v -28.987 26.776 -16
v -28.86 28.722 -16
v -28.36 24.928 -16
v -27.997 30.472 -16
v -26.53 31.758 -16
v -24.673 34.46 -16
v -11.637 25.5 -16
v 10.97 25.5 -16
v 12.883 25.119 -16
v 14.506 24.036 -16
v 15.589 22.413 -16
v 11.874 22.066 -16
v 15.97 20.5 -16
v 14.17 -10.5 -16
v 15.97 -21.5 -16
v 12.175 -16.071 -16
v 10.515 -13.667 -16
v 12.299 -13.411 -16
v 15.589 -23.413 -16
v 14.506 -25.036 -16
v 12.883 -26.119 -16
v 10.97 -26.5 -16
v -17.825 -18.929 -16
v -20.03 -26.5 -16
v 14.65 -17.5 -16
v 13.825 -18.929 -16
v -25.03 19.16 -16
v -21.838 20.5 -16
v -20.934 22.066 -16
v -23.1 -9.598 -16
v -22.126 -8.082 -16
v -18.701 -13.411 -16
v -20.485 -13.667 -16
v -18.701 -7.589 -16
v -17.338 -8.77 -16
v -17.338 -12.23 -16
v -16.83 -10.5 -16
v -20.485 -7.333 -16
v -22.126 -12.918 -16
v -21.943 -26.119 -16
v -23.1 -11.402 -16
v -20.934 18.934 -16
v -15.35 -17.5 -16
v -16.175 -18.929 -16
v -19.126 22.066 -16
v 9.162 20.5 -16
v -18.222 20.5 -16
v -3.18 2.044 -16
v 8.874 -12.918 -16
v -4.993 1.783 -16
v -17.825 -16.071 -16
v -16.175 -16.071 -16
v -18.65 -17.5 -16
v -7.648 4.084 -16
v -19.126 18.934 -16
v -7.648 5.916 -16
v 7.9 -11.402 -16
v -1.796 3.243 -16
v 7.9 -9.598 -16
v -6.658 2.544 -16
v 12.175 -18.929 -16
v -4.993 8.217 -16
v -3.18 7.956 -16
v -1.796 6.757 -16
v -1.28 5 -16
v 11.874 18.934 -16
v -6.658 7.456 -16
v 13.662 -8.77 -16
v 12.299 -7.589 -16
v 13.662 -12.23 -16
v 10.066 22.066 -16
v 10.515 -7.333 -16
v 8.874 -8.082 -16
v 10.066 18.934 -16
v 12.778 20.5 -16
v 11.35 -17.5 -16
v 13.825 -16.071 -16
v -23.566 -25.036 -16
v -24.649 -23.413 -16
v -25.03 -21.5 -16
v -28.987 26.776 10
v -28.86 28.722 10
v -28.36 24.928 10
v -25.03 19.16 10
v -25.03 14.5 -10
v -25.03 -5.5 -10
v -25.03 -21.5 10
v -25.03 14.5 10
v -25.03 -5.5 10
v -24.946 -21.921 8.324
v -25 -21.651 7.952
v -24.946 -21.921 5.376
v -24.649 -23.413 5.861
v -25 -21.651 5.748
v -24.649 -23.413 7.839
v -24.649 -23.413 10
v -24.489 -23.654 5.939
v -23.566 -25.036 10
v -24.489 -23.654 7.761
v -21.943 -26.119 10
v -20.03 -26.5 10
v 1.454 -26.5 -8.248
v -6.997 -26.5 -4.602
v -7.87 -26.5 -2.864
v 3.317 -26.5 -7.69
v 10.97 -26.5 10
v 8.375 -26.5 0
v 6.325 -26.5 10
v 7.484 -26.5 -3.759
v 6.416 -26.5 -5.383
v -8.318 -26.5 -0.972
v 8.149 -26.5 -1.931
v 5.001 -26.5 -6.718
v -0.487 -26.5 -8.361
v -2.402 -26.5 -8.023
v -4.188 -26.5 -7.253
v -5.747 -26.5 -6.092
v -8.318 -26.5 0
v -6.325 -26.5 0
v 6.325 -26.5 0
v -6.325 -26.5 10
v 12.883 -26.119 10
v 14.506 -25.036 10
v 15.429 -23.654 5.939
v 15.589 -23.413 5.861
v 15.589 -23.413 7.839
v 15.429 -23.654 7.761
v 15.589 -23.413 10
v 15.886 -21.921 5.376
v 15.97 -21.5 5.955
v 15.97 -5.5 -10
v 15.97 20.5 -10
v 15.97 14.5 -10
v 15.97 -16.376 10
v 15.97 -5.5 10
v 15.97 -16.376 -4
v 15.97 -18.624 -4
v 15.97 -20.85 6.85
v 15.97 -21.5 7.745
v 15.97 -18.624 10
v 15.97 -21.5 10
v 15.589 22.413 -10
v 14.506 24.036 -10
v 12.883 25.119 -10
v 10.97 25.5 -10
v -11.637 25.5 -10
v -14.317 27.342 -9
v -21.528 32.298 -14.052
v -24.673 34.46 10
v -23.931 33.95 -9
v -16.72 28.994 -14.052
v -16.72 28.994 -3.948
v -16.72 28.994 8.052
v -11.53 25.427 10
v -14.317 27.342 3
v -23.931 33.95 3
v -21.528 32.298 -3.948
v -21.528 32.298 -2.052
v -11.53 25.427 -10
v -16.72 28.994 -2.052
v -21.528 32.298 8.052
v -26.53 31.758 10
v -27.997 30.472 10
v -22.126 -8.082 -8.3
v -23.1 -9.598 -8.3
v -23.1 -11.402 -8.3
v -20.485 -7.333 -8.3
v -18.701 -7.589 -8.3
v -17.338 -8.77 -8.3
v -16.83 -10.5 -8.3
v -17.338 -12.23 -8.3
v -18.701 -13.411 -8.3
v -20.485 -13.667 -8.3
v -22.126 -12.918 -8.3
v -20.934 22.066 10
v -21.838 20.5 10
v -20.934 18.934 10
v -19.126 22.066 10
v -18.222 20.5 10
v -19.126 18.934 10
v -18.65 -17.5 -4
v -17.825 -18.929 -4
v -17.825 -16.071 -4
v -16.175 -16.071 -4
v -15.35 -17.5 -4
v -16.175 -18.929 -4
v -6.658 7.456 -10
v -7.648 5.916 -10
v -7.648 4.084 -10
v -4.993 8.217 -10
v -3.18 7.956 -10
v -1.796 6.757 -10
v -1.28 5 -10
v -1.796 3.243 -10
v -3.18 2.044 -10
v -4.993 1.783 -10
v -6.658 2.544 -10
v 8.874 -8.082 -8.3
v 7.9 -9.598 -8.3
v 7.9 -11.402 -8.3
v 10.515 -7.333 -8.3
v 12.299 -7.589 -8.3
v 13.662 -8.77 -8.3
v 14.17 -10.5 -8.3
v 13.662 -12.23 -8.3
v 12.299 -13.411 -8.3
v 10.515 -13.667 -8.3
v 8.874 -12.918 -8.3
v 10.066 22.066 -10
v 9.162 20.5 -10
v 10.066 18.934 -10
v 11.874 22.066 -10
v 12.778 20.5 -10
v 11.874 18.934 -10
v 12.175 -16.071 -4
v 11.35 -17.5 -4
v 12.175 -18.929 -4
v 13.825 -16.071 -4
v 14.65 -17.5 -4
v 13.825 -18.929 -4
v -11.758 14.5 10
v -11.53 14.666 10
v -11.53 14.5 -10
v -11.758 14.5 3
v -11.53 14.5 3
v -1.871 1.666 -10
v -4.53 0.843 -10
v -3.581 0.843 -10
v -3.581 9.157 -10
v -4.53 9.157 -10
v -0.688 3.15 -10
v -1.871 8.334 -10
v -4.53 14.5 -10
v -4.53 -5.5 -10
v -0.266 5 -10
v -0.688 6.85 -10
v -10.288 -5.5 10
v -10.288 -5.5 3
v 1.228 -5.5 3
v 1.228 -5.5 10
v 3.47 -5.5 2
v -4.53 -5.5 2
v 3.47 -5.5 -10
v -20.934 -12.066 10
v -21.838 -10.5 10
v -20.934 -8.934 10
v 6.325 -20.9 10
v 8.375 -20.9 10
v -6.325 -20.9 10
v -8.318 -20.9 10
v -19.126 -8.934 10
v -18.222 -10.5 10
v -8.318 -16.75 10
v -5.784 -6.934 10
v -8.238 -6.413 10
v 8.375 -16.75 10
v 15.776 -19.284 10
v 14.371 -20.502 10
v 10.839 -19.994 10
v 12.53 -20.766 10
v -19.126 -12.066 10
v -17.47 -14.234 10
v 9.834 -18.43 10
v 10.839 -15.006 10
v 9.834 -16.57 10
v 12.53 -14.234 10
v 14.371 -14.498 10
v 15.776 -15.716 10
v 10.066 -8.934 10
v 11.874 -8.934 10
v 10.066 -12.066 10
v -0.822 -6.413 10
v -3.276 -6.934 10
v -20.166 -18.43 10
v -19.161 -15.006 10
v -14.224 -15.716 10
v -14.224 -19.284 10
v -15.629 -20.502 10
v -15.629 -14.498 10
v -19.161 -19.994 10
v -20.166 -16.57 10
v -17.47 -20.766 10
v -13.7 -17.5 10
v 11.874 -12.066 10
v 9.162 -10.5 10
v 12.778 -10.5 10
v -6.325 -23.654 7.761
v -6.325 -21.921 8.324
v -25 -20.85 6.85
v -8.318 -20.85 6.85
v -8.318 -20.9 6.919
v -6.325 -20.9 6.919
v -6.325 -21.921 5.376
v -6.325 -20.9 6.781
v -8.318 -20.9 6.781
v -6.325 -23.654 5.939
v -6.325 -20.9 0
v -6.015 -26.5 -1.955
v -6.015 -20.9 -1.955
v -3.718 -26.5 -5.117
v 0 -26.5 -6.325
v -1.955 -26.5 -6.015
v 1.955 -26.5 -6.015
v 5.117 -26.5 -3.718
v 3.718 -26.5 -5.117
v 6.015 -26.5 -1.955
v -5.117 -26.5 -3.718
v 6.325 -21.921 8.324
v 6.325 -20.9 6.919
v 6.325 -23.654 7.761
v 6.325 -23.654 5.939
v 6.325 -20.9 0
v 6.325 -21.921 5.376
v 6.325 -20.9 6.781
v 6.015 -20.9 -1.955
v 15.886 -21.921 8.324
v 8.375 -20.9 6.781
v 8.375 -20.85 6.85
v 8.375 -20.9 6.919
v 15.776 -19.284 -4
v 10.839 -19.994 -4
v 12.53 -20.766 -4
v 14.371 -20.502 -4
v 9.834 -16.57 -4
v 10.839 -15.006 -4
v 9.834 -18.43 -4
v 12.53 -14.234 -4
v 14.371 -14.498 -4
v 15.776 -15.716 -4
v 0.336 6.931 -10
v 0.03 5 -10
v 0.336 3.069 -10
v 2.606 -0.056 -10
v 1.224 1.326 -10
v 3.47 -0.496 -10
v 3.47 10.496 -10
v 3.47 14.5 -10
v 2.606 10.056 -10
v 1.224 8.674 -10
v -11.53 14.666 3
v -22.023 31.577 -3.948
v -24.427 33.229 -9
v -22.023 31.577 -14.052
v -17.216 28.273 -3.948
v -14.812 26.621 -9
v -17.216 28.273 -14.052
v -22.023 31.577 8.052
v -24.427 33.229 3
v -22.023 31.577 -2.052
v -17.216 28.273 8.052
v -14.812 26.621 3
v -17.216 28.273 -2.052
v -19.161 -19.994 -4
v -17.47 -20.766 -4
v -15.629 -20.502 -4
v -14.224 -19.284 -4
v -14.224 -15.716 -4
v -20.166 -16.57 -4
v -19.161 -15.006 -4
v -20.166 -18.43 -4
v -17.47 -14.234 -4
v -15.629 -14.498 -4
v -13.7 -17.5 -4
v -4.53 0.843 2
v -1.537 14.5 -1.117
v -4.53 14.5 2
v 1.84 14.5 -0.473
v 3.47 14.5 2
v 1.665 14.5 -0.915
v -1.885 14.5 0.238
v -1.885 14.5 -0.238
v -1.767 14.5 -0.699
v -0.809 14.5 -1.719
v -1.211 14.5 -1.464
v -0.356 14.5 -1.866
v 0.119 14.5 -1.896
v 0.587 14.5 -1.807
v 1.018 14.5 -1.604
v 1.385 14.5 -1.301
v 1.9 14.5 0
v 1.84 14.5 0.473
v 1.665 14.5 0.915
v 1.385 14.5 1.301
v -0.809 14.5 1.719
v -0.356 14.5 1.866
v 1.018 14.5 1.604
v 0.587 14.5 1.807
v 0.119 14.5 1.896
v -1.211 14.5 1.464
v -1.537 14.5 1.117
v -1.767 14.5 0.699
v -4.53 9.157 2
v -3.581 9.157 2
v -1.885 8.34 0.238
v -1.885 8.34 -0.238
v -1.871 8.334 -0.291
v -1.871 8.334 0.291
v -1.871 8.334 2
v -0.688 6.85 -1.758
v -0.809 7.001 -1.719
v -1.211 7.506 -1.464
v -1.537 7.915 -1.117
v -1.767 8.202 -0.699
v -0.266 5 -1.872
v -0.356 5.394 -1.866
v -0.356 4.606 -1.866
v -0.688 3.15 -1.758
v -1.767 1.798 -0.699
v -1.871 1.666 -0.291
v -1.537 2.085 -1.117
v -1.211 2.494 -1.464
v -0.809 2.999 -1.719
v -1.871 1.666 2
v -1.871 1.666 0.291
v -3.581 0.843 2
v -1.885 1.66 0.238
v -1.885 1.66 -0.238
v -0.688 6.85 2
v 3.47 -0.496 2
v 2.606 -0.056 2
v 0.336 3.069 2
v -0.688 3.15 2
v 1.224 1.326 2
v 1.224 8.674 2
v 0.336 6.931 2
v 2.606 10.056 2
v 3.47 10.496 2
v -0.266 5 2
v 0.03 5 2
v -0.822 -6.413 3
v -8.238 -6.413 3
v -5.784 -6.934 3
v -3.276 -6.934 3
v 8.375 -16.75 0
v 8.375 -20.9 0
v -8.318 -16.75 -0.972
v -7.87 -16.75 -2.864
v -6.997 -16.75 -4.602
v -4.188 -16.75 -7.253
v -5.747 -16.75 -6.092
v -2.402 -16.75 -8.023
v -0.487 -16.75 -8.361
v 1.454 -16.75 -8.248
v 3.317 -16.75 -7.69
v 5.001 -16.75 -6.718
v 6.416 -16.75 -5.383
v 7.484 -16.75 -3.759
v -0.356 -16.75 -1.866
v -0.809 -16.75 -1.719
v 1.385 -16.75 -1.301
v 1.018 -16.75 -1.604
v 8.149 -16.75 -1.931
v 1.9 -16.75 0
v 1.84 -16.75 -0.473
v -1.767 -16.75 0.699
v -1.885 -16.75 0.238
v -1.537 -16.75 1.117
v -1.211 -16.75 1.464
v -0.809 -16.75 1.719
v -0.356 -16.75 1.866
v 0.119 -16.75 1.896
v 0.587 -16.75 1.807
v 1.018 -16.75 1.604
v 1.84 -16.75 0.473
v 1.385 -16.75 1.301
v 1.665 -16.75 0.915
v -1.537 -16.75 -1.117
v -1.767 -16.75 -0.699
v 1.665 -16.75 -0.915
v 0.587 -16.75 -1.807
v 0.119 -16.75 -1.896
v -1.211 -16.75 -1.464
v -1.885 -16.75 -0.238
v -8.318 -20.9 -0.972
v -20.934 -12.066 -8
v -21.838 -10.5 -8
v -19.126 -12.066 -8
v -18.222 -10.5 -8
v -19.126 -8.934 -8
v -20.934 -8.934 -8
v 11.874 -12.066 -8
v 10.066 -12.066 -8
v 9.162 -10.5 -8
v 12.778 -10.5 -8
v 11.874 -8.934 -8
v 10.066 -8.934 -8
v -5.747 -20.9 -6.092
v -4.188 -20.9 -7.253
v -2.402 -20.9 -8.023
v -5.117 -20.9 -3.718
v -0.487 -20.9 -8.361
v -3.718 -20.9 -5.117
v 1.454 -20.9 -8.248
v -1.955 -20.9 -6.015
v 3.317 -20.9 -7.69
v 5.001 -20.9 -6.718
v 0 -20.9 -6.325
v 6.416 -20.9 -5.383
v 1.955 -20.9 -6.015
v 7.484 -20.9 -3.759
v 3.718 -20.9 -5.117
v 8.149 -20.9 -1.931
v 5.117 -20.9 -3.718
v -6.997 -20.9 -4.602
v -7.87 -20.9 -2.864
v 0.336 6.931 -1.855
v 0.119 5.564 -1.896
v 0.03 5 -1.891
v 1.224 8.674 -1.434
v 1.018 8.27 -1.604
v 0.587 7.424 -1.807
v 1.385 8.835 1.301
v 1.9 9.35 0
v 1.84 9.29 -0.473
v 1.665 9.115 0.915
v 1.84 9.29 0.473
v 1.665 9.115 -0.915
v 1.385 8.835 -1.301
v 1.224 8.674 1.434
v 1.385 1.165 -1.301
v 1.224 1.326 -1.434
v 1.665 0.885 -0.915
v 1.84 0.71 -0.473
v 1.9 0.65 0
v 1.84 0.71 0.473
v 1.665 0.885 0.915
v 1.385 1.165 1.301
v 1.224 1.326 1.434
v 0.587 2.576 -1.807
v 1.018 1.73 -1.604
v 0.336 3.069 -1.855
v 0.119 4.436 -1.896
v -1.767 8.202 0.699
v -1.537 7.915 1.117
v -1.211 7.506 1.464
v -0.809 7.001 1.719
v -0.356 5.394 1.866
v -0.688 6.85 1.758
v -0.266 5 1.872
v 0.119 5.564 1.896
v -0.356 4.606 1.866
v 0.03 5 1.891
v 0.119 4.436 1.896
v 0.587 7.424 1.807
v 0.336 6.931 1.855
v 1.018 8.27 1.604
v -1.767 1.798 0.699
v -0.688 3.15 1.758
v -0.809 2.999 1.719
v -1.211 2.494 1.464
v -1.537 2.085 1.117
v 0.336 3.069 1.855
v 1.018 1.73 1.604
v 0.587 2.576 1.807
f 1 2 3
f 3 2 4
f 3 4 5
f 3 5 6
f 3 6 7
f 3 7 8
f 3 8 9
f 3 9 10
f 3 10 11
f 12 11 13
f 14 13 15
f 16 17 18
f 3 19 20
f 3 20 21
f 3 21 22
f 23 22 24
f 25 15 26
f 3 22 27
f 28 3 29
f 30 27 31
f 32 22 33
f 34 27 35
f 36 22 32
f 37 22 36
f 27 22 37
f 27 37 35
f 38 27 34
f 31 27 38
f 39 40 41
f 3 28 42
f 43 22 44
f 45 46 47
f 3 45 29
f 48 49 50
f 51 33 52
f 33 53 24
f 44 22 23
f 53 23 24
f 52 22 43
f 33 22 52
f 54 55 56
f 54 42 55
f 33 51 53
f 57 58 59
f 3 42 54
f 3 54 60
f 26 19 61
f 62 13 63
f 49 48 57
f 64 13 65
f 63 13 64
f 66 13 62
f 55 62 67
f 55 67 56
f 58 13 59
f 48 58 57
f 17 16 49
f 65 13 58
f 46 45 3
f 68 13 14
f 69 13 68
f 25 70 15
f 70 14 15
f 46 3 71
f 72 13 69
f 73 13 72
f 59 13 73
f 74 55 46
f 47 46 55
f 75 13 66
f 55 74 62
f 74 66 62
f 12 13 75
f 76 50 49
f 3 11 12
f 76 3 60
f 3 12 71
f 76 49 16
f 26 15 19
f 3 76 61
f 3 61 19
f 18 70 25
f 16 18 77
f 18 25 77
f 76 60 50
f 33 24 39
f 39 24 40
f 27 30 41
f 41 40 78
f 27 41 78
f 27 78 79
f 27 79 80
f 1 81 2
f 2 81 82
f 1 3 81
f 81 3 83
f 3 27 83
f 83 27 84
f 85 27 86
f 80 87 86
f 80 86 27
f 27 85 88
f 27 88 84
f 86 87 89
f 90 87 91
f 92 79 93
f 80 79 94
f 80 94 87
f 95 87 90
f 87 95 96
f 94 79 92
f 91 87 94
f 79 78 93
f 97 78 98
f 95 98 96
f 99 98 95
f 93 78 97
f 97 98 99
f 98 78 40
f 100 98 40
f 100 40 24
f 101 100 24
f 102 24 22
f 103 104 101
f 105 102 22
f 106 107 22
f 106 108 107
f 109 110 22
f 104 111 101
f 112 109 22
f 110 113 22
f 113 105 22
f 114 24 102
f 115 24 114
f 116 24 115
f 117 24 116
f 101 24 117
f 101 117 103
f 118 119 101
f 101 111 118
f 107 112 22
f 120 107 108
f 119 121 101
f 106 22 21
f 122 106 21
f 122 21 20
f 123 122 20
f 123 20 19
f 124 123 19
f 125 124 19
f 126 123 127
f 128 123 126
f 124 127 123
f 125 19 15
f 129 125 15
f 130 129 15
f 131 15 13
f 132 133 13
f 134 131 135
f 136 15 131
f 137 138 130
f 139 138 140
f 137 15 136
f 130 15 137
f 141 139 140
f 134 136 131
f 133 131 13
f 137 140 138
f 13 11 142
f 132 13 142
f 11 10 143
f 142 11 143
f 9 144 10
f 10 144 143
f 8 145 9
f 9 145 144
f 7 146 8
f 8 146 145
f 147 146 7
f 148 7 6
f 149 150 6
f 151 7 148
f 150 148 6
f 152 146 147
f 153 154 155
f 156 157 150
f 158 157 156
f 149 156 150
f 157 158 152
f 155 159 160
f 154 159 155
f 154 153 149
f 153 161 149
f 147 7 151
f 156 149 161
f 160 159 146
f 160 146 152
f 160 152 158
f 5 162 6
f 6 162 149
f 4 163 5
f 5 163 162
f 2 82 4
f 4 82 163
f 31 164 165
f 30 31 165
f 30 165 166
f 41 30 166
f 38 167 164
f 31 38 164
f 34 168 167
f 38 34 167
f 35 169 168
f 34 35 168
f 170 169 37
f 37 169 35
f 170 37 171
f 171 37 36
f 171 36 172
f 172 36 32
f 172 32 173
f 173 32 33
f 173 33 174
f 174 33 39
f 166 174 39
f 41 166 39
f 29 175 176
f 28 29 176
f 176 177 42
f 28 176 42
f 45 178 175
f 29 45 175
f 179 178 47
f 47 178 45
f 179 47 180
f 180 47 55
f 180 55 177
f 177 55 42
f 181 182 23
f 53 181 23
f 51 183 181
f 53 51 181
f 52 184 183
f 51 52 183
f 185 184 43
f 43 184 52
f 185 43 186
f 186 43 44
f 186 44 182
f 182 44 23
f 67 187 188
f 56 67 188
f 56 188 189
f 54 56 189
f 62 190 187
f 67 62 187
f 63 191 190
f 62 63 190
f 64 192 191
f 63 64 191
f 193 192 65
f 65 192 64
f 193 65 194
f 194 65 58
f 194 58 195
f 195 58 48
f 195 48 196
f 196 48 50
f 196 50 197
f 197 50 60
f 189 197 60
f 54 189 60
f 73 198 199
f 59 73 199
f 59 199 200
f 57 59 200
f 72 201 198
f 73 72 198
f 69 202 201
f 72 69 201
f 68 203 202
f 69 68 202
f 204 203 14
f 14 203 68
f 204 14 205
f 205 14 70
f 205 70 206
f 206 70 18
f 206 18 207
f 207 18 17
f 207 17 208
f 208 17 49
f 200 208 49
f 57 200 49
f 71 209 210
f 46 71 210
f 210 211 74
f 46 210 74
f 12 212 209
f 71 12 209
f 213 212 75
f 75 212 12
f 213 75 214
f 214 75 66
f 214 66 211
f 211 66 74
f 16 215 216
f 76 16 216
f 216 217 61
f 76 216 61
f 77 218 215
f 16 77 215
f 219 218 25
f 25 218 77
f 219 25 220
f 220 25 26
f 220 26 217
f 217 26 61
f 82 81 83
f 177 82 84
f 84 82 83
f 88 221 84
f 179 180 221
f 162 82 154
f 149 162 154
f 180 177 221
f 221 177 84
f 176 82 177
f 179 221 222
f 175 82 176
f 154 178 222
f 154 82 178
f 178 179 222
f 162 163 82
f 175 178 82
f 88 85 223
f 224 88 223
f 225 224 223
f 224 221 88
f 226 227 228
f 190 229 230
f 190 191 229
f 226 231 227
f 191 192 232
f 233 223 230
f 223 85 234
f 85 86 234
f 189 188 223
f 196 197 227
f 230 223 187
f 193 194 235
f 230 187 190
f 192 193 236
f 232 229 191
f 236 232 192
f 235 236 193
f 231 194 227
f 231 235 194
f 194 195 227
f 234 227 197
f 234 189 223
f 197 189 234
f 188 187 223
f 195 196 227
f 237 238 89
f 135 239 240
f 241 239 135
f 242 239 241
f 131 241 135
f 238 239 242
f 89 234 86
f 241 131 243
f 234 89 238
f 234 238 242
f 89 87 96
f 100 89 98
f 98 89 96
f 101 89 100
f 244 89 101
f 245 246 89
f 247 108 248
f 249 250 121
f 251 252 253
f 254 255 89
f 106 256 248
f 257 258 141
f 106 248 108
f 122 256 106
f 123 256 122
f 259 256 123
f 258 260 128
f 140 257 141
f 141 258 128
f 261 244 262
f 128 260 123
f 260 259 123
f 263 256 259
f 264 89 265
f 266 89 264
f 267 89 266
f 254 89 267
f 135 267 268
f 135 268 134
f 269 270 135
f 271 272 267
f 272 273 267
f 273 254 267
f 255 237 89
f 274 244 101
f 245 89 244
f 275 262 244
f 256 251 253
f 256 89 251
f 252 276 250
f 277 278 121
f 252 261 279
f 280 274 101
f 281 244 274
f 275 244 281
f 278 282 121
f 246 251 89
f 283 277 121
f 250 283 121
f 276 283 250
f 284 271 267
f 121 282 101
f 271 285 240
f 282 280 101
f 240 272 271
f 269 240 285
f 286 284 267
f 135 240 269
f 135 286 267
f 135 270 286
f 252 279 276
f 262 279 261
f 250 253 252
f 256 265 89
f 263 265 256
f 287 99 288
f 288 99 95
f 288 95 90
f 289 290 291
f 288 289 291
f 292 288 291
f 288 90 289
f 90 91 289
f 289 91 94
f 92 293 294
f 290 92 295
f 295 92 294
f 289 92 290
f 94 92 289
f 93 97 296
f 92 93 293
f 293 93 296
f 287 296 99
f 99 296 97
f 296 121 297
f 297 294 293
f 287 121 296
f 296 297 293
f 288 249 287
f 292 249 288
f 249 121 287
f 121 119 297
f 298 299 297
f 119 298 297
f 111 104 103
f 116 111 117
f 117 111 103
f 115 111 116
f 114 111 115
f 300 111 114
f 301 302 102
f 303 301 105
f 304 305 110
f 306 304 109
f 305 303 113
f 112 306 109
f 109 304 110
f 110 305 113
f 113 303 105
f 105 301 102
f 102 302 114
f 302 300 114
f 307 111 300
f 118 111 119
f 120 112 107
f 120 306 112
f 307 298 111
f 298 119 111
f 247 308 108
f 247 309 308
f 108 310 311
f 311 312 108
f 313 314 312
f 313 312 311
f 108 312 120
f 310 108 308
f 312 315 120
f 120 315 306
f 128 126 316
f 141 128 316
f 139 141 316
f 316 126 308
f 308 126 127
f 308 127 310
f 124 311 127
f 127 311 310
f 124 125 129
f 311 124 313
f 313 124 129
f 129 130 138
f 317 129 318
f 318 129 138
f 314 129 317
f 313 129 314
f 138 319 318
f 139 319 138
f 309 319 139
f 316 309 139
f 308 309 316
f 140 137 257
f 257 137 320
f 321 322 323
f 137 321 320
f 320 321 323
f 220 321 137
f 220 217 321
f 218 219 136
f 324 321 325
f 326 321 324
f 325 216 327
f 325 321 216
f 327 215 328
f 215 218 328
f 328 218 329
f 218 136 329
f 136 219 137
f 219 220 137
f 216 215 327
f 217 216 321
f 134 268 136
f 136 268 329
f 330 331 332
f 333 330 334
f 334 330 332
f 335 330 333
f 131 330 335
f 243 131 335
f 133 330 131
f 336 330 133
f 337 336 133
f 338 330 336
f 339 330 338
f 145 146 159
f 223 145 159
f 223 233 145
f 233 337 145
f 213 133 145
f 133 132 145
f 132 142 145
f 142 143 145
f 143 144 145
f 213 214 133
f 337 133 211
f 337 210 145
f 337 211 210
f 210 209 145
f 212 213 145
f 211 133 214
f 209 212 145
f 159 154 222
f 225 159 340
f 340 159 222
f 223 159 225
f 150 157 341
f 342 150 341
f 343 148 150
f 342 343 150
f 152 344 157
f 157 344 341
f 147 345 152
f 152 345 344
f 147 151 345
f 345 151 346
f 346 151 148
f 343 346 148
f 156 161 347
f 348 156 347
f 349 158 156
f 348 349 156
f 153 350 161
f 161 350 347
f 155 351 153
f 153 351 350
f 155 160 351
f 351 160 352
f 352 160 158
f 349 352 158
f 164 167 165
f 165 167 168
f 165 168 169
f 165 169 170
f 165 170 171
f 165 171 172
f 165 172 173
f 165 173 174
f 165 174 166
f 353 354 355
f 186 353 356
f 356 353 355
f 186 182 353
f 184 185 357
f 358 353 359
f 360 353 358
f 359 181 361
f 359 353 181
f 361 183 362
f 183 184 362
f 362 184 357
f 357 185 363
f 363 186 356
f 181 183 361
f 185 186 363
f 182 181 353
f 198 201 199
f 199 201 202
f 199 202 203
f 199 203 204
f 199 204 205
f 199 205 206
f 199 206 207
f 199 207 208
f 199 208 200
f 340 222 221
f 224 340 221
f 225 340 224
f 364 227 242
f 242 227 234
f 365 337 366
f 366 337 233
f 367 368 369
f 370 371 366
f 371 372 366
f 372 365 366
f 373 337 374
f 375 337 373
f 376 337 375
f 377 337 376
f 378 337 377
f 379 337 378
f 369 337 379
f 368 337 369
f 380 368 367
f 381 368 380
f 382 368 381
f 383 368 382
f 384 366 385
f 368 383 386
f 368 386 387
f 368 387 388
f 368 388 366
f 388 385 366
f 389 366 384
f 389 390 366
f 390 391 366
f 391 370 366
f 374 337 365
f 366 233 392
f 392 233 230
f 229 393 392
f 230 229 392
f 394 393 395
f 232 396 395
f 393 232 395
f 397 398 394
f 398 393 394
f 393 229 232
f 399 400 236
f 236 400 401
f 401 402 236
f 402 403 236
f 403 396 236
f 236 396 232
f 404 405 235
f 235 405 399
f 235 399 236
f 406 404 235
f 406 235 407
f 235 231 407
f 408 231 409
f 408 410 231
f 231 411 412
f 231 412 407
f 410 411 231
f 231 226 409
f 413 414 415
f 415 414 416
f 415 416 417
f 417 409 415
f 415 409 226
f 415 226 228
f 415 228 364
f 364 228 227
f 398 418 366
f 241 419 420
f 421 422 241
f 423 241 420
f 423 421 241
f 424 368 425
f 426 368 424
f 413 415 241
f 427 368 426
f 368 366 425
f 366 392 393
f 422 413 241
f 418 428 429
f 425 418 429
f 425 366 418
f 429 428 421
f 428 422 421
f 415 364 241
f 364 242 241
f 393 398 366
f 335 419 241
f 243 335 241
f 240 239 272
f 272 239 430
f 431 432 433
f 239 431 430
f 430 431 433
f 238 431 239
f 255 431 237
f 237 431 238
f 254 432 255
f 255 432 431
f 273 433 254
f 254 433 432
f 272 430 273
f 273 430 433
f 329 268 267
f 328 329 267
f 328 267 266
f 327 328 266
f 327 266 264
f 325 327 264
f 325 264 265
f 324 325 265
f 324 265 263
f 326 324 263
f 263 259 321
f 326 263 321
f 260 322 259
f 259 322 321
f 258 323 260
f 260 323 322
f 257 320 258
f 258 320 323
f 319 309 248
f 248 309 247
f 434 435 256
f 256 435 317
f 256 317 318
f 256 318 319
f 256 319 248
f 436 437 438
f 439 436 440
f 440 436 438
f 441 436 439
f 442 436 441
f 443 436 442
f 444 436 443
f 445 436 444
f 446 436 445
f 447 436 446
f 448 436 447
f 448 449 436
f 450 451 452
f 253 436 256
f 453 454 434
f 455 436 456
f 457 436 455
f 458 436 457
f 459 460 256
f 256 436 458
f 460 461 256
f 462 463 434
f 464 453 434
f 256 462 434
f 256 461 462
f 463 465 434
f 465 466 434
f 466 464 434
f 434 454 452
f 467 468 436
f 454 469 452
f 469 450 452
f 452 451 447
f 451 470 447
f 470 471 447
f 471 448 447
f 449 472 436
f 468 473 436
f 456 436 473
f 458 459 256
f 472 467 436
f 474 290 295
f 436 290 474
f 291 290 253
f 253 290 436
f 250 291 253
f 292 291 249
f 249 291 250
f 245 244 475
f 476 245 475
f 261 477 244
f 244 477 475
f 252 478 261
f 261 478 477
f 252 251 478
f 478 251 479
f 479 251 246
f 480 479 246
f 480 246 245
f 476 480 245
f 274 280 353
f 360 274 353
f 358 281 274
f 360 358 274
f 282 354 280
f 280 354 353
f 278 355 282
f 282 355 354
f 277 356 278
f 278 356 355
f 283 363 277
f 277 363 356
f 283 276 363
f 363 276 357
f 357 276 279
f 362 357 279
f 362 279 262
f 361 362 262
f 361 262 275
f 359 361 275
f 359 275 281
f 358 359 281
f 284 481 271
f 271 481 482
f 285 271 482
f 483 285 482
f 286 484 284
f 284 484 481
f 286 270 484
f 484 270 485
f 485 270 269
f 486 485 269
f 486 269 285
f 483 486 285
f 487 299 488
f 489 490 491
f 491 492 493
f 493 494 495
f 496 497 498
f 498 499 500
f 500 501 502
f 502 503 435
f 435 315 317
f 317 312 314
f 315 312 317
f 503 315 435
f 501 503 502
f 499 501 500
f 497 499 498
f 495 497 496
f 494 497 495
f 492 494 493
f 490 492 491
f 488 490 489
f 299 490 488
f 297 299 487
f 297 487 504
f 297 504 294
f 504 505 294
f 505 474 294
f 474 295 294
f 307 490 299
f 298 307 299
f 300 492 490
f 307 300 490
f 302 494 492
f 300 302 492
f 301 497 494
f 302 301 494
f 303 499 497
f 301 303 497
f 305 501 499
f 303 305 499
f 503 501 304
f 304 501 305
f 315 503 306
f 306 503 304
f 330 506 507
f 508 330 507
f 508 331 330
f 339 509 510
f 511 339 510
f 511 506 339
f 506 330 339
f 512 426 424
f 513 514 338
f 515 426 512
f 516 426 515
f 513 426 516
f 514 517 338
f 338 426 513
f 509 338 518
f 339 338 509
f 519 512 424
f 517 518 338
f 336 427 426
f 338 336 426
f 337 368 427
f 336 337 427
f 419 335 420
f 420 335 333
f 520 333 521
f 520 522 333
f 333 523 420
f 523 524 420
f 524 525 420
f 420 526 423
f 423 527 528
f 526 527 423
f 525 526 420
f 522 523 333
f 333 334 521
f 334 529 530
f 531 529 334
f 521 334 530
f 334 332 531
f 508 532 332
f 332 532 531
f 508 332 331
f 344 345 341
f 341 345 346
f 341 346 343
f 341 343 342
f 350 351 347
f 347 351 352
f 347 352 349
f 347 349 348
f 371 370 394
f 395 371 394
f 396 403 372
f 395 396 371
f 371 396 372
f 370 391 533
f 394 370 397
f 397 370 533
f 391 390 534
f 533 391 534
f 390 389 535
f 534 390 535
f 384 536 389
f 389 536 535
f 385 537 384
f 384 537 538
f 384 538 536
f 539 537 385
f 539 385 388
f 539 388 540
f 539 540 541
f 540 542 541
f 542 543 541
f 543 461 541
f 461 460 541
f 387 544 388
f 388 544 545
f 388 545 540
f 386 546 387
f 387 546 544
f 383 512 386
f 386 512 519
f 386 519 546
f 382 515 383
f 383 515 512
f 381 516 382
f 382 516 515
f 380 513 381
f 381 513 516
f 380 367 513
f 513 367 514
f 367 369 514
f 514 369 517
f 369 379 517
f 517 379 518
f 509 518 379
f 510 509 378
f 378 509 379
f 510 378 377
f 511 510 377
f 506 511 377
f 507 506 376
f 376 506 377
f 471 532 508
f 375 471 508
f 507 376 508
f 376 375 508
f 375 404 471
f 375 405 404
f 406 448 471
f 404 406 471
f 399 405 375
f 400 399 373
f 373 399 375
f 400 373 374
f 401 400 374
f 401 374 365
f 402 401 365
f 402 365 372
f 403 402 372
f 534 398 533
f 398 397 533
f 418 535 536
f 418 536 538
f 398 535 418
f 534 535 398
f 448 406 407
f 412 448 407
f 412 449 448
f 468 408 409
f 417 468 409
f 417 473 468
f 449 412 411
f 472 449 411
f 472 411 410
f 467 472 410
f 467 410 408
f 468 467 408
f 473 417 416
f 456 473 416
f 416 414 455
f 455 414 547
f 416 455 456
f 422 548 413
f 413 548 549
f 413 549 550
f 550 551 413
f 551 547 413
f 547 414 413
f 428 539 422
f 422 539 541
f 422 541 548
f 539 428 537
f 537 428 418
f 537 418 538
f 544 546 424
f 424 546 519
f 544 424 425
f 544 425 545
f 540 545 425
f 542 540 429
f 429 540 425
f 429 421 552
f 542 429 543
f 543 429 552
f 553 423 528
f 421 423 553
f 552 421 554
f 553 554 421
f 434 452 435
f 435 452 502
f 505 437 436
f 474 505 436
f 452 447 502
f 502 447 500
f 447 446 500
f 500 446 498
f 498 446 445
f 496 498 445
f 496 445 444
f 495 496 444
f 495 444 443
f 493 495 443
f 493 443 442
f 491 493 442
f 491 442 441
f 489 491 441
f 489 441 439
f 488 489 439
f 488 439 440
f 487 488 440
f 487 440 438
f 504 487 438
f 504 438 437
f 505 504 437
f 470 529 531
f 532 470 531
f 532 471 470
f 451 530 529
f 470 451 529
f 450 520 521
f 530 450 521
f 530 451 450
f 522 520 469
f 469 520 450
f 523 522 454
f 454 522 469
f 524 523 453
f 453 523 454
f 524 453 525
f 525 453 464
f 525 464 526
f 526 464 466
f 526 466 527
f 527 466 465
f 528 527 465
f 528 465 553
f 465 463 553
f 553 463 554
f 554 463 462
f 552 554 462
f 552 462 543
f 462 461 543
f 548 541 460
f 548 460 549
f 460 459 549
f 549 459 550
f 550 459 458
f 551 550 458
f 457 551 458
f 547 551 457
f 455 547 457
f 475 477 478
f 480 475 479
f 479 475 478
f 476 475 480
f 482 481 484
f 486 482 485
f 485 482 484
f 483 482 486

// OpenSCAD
/**
 * DViejosCompactExtruder
 * 
 * created by Diego Viejo
 * 
 */


filament_d = 3;
spring_d = 10;

mainHeight = 14;
baseHeight = 6; 
offset = 3;

b623zzRad = 5;
b624zzRad = 6.5;
b623zzHeight = 4;
b624zzHeight = 5;

bearingRad = b623zzRad;
bearingHeight = b623zzHeight;

trackerDiam1 = 10.56;
trackerDiam2 = 6.56;
trackerDiam = trackerDiam2;
AjusteNozzle = 1.25;
correction = (trackerDiam1 - trackerDiam) / 2;


ptfeTubeRad = 3.2;
simpleTubeRad = 1.9;
tubeRad = simpleTubeRad;

carriagePos = -17.5;


//auxiliary
module tracker()
{
    //%translate([0, 0, 8.25]) 
    difference() {
	linear_extrude(height = 11, convexity = 5) difference() {
		circle(trackerDiam/2);
		circle(2.5);
	}
	translate([0, 0, 7.7]) rotate_extrude(convexity = 5, $fs = 0.5) translate([trackerDiam/2 + 1.3, 0, 0]) circle(r = 2);
  }

}


e3dDiam = 16 + 0.75;
e3dDiam2 = 12 + 0.65;

e3dHeight1 = 3.75 + 0.4; 
e3dHeight2 = 6 - 0.4; 
e3dHeight3 = 15; 

module e3dMount()
{
  translate([0, 0, -e3dHeight1]) hull()
  {
    cylinder(r=e3dDiam/2, h=e3dHeight1);
    translate([0, -30, 0]) cylinder(r=e3dDiam/2, h=e3dHeight1);
  }

  translate([0, 0, -e3dHeight1-e3dHeight2-e3dHeight3+1]) hull()
  {
    cylinder(r=e3dDiam2/2, h=e3dHeight2+ e3dHeight3);
    translate([0, -30, 0]) cylinder(r=e3dDiam2/2, h=e3dHeight2+ e3dHeight3);
  }
  
  translate([0, 0, -e3dHeight1-e3dHeight2-e3dHeight3]) hull() 
  {
    cylinder(r=e3dDiam/2, h=e3dHeight3);
    translate([0, -30, 0]) cylinder(r=e3dDiam/2, h=e3dHeight3);
  }
  
  #translate([25, -e3dHeight2-1.25, -e3dHeight1-1.5]) rotate([0, -90, 0]) cylinder(r=1.55, h=50);
}


module base() translate([-trackerDiam/2 - AjusteNozzle, 15.5+5, -baseHeight - mainHeight/2-offset])
{
	difference() {
		union() {
			translate([-15.5, 0, 0]) rotate(120) {
				translate([0, -5, 0]) cube([8, 10, baseHeight*2 + mainHeight]);
				translate([8, 0, 0]) cylinder(r=5, h=baseHeight*2 + mainHeight);
				translate([13, 0, 0]) rotate(-150 - 9 / 2) cube([15+5, 5+5, baseHeight*2 + mainHeight]);
			}
			hull()
			{
			  for (side = [1, -1]) translate([side * 15.5, 0, 0]) cylinder(r=5, h=baseHeight*2 + mainHeight);
			  for (side = [1, -1]) translate([side * 15.5, -42, 0]) cylinder(r=5, h=baseHeight*2 + mainHeight);
			}
		}
		//motor mounting holes
		//up
		for (side = [1, -1]) translate([side * 15.5, 0, -1]) cylinder(r = 3.1 * 7/12, $fn = 6, h=baseHeight*2 + mainHeight+2);
		//bottom with room for bolt cap
		for (side = [1, -1]) 
		{
		  translate([side * 15.5, -31, 8]) cylinder(r=3.1 * 7/12, h=mainHeight+baseHeight+12);
		  translate([side * 15.5, -31, -1]) cylinder(r=3.2, h=8.7);
		}
		
		translate([0, -15.5, baseHeight*2 + mainHeight-7]) cylinder(r=12, h=10);
		translate([0, -15.5, -1]) cylinder(r=3.25, h=baseHeight*2 + mainHeight+2); //TODO This can be replaced by holder for a 625zz bearing
		
		//idler cut-out
		difference()
		{
		  union()
		  {
		    translate([-15.5, 0, -1]) rotate(30) translate([0, 5+correction*2, 0]) rotate(-60 - 9 / 2) translate([-15, 5, 0]) cube([60, 50, mainHeight + baseHeight*2+2]);
		    translate([-7, -6, -1]) cube([100, 100, mainHeight + baseHeight*2+2]);
		  }
		  translate([-10, -20, -2]) cube([100, 25, baseHeight+2]);
		}
		//Springs
		#translate([-15.5, 0, baseHeight + mainHeight / 2+offset+3]) rotate([90, 0, 150 - 4.5]) translate([5, 0, 5.5+correction*1.25]) 
		  cylinder(r = spring_d * 7/12, h = 10, $fn = 6);
		#translate([-15.5, 0, baseHeight + mainHeight / 2+offset-9]) rotate([90, 0, 150 - 4.5]) translate([5, 0, 5.5+correction*1.25]) 
		  cylinder(r = spring_d * 7/12, h = 10, $fn = 6);
		//hole for filament intake
		translate([trackerDiam/2 + AjusteNozzle, -15.5-50, baseHeight + mainHeight/2+offset]) rotate([-90, 0, 0]) cylinder(r=tubeRad, h=100, $fn = 25); //r=1.85

		//internal room. The structure for guiding filament is here!
		translate([-21, -26, baseHeight]) cube([21, 20, mainHeight+baseHeight+1]);
		translate([8, -26, baseHeight]) cube([13, 20, mainHeight+baseHeight+1]);
		translate([-21, -26, baseHeight*2 + mainHeight-8]) cube([40, 20, mainHeight+baseHeight+1]);
		//Idler hole
		translate([trackerDiam + AjusteNozzle+filament_d, -15.5, baseHeight]) cylinder(r=bearingRad*1.25, h=22);
		translate([0, -15.5, baseHeight]) cylinder(r=(trackerDiam/2)*1.30, h=22);
		
		%translate([0, -15.5, baseHeight + mainHeight/2+offset+7.7]) mirror([0, 0, 1]) tracker();

	}
}

module DViejosCompactExtruder()
{
  difference()
  {
    base();
    translate([0, -16.75, 0]) rotate([-90, 0, 0]) e3dMount();
    
    //xcarriage holes for PowerCode/Hephestos XCarriage
    for(i=[-1, 1])
    {
      #translate([i*15-2, carriagePos, -25]) cylinder(r=1.65, h=50);
      translate([i*15-2, carriagePos, baseHeight - mainHeight/2 - offset]) cylinder(r=3.3, h=50);
    }
  }
}

DViejosCompactExtruder();
